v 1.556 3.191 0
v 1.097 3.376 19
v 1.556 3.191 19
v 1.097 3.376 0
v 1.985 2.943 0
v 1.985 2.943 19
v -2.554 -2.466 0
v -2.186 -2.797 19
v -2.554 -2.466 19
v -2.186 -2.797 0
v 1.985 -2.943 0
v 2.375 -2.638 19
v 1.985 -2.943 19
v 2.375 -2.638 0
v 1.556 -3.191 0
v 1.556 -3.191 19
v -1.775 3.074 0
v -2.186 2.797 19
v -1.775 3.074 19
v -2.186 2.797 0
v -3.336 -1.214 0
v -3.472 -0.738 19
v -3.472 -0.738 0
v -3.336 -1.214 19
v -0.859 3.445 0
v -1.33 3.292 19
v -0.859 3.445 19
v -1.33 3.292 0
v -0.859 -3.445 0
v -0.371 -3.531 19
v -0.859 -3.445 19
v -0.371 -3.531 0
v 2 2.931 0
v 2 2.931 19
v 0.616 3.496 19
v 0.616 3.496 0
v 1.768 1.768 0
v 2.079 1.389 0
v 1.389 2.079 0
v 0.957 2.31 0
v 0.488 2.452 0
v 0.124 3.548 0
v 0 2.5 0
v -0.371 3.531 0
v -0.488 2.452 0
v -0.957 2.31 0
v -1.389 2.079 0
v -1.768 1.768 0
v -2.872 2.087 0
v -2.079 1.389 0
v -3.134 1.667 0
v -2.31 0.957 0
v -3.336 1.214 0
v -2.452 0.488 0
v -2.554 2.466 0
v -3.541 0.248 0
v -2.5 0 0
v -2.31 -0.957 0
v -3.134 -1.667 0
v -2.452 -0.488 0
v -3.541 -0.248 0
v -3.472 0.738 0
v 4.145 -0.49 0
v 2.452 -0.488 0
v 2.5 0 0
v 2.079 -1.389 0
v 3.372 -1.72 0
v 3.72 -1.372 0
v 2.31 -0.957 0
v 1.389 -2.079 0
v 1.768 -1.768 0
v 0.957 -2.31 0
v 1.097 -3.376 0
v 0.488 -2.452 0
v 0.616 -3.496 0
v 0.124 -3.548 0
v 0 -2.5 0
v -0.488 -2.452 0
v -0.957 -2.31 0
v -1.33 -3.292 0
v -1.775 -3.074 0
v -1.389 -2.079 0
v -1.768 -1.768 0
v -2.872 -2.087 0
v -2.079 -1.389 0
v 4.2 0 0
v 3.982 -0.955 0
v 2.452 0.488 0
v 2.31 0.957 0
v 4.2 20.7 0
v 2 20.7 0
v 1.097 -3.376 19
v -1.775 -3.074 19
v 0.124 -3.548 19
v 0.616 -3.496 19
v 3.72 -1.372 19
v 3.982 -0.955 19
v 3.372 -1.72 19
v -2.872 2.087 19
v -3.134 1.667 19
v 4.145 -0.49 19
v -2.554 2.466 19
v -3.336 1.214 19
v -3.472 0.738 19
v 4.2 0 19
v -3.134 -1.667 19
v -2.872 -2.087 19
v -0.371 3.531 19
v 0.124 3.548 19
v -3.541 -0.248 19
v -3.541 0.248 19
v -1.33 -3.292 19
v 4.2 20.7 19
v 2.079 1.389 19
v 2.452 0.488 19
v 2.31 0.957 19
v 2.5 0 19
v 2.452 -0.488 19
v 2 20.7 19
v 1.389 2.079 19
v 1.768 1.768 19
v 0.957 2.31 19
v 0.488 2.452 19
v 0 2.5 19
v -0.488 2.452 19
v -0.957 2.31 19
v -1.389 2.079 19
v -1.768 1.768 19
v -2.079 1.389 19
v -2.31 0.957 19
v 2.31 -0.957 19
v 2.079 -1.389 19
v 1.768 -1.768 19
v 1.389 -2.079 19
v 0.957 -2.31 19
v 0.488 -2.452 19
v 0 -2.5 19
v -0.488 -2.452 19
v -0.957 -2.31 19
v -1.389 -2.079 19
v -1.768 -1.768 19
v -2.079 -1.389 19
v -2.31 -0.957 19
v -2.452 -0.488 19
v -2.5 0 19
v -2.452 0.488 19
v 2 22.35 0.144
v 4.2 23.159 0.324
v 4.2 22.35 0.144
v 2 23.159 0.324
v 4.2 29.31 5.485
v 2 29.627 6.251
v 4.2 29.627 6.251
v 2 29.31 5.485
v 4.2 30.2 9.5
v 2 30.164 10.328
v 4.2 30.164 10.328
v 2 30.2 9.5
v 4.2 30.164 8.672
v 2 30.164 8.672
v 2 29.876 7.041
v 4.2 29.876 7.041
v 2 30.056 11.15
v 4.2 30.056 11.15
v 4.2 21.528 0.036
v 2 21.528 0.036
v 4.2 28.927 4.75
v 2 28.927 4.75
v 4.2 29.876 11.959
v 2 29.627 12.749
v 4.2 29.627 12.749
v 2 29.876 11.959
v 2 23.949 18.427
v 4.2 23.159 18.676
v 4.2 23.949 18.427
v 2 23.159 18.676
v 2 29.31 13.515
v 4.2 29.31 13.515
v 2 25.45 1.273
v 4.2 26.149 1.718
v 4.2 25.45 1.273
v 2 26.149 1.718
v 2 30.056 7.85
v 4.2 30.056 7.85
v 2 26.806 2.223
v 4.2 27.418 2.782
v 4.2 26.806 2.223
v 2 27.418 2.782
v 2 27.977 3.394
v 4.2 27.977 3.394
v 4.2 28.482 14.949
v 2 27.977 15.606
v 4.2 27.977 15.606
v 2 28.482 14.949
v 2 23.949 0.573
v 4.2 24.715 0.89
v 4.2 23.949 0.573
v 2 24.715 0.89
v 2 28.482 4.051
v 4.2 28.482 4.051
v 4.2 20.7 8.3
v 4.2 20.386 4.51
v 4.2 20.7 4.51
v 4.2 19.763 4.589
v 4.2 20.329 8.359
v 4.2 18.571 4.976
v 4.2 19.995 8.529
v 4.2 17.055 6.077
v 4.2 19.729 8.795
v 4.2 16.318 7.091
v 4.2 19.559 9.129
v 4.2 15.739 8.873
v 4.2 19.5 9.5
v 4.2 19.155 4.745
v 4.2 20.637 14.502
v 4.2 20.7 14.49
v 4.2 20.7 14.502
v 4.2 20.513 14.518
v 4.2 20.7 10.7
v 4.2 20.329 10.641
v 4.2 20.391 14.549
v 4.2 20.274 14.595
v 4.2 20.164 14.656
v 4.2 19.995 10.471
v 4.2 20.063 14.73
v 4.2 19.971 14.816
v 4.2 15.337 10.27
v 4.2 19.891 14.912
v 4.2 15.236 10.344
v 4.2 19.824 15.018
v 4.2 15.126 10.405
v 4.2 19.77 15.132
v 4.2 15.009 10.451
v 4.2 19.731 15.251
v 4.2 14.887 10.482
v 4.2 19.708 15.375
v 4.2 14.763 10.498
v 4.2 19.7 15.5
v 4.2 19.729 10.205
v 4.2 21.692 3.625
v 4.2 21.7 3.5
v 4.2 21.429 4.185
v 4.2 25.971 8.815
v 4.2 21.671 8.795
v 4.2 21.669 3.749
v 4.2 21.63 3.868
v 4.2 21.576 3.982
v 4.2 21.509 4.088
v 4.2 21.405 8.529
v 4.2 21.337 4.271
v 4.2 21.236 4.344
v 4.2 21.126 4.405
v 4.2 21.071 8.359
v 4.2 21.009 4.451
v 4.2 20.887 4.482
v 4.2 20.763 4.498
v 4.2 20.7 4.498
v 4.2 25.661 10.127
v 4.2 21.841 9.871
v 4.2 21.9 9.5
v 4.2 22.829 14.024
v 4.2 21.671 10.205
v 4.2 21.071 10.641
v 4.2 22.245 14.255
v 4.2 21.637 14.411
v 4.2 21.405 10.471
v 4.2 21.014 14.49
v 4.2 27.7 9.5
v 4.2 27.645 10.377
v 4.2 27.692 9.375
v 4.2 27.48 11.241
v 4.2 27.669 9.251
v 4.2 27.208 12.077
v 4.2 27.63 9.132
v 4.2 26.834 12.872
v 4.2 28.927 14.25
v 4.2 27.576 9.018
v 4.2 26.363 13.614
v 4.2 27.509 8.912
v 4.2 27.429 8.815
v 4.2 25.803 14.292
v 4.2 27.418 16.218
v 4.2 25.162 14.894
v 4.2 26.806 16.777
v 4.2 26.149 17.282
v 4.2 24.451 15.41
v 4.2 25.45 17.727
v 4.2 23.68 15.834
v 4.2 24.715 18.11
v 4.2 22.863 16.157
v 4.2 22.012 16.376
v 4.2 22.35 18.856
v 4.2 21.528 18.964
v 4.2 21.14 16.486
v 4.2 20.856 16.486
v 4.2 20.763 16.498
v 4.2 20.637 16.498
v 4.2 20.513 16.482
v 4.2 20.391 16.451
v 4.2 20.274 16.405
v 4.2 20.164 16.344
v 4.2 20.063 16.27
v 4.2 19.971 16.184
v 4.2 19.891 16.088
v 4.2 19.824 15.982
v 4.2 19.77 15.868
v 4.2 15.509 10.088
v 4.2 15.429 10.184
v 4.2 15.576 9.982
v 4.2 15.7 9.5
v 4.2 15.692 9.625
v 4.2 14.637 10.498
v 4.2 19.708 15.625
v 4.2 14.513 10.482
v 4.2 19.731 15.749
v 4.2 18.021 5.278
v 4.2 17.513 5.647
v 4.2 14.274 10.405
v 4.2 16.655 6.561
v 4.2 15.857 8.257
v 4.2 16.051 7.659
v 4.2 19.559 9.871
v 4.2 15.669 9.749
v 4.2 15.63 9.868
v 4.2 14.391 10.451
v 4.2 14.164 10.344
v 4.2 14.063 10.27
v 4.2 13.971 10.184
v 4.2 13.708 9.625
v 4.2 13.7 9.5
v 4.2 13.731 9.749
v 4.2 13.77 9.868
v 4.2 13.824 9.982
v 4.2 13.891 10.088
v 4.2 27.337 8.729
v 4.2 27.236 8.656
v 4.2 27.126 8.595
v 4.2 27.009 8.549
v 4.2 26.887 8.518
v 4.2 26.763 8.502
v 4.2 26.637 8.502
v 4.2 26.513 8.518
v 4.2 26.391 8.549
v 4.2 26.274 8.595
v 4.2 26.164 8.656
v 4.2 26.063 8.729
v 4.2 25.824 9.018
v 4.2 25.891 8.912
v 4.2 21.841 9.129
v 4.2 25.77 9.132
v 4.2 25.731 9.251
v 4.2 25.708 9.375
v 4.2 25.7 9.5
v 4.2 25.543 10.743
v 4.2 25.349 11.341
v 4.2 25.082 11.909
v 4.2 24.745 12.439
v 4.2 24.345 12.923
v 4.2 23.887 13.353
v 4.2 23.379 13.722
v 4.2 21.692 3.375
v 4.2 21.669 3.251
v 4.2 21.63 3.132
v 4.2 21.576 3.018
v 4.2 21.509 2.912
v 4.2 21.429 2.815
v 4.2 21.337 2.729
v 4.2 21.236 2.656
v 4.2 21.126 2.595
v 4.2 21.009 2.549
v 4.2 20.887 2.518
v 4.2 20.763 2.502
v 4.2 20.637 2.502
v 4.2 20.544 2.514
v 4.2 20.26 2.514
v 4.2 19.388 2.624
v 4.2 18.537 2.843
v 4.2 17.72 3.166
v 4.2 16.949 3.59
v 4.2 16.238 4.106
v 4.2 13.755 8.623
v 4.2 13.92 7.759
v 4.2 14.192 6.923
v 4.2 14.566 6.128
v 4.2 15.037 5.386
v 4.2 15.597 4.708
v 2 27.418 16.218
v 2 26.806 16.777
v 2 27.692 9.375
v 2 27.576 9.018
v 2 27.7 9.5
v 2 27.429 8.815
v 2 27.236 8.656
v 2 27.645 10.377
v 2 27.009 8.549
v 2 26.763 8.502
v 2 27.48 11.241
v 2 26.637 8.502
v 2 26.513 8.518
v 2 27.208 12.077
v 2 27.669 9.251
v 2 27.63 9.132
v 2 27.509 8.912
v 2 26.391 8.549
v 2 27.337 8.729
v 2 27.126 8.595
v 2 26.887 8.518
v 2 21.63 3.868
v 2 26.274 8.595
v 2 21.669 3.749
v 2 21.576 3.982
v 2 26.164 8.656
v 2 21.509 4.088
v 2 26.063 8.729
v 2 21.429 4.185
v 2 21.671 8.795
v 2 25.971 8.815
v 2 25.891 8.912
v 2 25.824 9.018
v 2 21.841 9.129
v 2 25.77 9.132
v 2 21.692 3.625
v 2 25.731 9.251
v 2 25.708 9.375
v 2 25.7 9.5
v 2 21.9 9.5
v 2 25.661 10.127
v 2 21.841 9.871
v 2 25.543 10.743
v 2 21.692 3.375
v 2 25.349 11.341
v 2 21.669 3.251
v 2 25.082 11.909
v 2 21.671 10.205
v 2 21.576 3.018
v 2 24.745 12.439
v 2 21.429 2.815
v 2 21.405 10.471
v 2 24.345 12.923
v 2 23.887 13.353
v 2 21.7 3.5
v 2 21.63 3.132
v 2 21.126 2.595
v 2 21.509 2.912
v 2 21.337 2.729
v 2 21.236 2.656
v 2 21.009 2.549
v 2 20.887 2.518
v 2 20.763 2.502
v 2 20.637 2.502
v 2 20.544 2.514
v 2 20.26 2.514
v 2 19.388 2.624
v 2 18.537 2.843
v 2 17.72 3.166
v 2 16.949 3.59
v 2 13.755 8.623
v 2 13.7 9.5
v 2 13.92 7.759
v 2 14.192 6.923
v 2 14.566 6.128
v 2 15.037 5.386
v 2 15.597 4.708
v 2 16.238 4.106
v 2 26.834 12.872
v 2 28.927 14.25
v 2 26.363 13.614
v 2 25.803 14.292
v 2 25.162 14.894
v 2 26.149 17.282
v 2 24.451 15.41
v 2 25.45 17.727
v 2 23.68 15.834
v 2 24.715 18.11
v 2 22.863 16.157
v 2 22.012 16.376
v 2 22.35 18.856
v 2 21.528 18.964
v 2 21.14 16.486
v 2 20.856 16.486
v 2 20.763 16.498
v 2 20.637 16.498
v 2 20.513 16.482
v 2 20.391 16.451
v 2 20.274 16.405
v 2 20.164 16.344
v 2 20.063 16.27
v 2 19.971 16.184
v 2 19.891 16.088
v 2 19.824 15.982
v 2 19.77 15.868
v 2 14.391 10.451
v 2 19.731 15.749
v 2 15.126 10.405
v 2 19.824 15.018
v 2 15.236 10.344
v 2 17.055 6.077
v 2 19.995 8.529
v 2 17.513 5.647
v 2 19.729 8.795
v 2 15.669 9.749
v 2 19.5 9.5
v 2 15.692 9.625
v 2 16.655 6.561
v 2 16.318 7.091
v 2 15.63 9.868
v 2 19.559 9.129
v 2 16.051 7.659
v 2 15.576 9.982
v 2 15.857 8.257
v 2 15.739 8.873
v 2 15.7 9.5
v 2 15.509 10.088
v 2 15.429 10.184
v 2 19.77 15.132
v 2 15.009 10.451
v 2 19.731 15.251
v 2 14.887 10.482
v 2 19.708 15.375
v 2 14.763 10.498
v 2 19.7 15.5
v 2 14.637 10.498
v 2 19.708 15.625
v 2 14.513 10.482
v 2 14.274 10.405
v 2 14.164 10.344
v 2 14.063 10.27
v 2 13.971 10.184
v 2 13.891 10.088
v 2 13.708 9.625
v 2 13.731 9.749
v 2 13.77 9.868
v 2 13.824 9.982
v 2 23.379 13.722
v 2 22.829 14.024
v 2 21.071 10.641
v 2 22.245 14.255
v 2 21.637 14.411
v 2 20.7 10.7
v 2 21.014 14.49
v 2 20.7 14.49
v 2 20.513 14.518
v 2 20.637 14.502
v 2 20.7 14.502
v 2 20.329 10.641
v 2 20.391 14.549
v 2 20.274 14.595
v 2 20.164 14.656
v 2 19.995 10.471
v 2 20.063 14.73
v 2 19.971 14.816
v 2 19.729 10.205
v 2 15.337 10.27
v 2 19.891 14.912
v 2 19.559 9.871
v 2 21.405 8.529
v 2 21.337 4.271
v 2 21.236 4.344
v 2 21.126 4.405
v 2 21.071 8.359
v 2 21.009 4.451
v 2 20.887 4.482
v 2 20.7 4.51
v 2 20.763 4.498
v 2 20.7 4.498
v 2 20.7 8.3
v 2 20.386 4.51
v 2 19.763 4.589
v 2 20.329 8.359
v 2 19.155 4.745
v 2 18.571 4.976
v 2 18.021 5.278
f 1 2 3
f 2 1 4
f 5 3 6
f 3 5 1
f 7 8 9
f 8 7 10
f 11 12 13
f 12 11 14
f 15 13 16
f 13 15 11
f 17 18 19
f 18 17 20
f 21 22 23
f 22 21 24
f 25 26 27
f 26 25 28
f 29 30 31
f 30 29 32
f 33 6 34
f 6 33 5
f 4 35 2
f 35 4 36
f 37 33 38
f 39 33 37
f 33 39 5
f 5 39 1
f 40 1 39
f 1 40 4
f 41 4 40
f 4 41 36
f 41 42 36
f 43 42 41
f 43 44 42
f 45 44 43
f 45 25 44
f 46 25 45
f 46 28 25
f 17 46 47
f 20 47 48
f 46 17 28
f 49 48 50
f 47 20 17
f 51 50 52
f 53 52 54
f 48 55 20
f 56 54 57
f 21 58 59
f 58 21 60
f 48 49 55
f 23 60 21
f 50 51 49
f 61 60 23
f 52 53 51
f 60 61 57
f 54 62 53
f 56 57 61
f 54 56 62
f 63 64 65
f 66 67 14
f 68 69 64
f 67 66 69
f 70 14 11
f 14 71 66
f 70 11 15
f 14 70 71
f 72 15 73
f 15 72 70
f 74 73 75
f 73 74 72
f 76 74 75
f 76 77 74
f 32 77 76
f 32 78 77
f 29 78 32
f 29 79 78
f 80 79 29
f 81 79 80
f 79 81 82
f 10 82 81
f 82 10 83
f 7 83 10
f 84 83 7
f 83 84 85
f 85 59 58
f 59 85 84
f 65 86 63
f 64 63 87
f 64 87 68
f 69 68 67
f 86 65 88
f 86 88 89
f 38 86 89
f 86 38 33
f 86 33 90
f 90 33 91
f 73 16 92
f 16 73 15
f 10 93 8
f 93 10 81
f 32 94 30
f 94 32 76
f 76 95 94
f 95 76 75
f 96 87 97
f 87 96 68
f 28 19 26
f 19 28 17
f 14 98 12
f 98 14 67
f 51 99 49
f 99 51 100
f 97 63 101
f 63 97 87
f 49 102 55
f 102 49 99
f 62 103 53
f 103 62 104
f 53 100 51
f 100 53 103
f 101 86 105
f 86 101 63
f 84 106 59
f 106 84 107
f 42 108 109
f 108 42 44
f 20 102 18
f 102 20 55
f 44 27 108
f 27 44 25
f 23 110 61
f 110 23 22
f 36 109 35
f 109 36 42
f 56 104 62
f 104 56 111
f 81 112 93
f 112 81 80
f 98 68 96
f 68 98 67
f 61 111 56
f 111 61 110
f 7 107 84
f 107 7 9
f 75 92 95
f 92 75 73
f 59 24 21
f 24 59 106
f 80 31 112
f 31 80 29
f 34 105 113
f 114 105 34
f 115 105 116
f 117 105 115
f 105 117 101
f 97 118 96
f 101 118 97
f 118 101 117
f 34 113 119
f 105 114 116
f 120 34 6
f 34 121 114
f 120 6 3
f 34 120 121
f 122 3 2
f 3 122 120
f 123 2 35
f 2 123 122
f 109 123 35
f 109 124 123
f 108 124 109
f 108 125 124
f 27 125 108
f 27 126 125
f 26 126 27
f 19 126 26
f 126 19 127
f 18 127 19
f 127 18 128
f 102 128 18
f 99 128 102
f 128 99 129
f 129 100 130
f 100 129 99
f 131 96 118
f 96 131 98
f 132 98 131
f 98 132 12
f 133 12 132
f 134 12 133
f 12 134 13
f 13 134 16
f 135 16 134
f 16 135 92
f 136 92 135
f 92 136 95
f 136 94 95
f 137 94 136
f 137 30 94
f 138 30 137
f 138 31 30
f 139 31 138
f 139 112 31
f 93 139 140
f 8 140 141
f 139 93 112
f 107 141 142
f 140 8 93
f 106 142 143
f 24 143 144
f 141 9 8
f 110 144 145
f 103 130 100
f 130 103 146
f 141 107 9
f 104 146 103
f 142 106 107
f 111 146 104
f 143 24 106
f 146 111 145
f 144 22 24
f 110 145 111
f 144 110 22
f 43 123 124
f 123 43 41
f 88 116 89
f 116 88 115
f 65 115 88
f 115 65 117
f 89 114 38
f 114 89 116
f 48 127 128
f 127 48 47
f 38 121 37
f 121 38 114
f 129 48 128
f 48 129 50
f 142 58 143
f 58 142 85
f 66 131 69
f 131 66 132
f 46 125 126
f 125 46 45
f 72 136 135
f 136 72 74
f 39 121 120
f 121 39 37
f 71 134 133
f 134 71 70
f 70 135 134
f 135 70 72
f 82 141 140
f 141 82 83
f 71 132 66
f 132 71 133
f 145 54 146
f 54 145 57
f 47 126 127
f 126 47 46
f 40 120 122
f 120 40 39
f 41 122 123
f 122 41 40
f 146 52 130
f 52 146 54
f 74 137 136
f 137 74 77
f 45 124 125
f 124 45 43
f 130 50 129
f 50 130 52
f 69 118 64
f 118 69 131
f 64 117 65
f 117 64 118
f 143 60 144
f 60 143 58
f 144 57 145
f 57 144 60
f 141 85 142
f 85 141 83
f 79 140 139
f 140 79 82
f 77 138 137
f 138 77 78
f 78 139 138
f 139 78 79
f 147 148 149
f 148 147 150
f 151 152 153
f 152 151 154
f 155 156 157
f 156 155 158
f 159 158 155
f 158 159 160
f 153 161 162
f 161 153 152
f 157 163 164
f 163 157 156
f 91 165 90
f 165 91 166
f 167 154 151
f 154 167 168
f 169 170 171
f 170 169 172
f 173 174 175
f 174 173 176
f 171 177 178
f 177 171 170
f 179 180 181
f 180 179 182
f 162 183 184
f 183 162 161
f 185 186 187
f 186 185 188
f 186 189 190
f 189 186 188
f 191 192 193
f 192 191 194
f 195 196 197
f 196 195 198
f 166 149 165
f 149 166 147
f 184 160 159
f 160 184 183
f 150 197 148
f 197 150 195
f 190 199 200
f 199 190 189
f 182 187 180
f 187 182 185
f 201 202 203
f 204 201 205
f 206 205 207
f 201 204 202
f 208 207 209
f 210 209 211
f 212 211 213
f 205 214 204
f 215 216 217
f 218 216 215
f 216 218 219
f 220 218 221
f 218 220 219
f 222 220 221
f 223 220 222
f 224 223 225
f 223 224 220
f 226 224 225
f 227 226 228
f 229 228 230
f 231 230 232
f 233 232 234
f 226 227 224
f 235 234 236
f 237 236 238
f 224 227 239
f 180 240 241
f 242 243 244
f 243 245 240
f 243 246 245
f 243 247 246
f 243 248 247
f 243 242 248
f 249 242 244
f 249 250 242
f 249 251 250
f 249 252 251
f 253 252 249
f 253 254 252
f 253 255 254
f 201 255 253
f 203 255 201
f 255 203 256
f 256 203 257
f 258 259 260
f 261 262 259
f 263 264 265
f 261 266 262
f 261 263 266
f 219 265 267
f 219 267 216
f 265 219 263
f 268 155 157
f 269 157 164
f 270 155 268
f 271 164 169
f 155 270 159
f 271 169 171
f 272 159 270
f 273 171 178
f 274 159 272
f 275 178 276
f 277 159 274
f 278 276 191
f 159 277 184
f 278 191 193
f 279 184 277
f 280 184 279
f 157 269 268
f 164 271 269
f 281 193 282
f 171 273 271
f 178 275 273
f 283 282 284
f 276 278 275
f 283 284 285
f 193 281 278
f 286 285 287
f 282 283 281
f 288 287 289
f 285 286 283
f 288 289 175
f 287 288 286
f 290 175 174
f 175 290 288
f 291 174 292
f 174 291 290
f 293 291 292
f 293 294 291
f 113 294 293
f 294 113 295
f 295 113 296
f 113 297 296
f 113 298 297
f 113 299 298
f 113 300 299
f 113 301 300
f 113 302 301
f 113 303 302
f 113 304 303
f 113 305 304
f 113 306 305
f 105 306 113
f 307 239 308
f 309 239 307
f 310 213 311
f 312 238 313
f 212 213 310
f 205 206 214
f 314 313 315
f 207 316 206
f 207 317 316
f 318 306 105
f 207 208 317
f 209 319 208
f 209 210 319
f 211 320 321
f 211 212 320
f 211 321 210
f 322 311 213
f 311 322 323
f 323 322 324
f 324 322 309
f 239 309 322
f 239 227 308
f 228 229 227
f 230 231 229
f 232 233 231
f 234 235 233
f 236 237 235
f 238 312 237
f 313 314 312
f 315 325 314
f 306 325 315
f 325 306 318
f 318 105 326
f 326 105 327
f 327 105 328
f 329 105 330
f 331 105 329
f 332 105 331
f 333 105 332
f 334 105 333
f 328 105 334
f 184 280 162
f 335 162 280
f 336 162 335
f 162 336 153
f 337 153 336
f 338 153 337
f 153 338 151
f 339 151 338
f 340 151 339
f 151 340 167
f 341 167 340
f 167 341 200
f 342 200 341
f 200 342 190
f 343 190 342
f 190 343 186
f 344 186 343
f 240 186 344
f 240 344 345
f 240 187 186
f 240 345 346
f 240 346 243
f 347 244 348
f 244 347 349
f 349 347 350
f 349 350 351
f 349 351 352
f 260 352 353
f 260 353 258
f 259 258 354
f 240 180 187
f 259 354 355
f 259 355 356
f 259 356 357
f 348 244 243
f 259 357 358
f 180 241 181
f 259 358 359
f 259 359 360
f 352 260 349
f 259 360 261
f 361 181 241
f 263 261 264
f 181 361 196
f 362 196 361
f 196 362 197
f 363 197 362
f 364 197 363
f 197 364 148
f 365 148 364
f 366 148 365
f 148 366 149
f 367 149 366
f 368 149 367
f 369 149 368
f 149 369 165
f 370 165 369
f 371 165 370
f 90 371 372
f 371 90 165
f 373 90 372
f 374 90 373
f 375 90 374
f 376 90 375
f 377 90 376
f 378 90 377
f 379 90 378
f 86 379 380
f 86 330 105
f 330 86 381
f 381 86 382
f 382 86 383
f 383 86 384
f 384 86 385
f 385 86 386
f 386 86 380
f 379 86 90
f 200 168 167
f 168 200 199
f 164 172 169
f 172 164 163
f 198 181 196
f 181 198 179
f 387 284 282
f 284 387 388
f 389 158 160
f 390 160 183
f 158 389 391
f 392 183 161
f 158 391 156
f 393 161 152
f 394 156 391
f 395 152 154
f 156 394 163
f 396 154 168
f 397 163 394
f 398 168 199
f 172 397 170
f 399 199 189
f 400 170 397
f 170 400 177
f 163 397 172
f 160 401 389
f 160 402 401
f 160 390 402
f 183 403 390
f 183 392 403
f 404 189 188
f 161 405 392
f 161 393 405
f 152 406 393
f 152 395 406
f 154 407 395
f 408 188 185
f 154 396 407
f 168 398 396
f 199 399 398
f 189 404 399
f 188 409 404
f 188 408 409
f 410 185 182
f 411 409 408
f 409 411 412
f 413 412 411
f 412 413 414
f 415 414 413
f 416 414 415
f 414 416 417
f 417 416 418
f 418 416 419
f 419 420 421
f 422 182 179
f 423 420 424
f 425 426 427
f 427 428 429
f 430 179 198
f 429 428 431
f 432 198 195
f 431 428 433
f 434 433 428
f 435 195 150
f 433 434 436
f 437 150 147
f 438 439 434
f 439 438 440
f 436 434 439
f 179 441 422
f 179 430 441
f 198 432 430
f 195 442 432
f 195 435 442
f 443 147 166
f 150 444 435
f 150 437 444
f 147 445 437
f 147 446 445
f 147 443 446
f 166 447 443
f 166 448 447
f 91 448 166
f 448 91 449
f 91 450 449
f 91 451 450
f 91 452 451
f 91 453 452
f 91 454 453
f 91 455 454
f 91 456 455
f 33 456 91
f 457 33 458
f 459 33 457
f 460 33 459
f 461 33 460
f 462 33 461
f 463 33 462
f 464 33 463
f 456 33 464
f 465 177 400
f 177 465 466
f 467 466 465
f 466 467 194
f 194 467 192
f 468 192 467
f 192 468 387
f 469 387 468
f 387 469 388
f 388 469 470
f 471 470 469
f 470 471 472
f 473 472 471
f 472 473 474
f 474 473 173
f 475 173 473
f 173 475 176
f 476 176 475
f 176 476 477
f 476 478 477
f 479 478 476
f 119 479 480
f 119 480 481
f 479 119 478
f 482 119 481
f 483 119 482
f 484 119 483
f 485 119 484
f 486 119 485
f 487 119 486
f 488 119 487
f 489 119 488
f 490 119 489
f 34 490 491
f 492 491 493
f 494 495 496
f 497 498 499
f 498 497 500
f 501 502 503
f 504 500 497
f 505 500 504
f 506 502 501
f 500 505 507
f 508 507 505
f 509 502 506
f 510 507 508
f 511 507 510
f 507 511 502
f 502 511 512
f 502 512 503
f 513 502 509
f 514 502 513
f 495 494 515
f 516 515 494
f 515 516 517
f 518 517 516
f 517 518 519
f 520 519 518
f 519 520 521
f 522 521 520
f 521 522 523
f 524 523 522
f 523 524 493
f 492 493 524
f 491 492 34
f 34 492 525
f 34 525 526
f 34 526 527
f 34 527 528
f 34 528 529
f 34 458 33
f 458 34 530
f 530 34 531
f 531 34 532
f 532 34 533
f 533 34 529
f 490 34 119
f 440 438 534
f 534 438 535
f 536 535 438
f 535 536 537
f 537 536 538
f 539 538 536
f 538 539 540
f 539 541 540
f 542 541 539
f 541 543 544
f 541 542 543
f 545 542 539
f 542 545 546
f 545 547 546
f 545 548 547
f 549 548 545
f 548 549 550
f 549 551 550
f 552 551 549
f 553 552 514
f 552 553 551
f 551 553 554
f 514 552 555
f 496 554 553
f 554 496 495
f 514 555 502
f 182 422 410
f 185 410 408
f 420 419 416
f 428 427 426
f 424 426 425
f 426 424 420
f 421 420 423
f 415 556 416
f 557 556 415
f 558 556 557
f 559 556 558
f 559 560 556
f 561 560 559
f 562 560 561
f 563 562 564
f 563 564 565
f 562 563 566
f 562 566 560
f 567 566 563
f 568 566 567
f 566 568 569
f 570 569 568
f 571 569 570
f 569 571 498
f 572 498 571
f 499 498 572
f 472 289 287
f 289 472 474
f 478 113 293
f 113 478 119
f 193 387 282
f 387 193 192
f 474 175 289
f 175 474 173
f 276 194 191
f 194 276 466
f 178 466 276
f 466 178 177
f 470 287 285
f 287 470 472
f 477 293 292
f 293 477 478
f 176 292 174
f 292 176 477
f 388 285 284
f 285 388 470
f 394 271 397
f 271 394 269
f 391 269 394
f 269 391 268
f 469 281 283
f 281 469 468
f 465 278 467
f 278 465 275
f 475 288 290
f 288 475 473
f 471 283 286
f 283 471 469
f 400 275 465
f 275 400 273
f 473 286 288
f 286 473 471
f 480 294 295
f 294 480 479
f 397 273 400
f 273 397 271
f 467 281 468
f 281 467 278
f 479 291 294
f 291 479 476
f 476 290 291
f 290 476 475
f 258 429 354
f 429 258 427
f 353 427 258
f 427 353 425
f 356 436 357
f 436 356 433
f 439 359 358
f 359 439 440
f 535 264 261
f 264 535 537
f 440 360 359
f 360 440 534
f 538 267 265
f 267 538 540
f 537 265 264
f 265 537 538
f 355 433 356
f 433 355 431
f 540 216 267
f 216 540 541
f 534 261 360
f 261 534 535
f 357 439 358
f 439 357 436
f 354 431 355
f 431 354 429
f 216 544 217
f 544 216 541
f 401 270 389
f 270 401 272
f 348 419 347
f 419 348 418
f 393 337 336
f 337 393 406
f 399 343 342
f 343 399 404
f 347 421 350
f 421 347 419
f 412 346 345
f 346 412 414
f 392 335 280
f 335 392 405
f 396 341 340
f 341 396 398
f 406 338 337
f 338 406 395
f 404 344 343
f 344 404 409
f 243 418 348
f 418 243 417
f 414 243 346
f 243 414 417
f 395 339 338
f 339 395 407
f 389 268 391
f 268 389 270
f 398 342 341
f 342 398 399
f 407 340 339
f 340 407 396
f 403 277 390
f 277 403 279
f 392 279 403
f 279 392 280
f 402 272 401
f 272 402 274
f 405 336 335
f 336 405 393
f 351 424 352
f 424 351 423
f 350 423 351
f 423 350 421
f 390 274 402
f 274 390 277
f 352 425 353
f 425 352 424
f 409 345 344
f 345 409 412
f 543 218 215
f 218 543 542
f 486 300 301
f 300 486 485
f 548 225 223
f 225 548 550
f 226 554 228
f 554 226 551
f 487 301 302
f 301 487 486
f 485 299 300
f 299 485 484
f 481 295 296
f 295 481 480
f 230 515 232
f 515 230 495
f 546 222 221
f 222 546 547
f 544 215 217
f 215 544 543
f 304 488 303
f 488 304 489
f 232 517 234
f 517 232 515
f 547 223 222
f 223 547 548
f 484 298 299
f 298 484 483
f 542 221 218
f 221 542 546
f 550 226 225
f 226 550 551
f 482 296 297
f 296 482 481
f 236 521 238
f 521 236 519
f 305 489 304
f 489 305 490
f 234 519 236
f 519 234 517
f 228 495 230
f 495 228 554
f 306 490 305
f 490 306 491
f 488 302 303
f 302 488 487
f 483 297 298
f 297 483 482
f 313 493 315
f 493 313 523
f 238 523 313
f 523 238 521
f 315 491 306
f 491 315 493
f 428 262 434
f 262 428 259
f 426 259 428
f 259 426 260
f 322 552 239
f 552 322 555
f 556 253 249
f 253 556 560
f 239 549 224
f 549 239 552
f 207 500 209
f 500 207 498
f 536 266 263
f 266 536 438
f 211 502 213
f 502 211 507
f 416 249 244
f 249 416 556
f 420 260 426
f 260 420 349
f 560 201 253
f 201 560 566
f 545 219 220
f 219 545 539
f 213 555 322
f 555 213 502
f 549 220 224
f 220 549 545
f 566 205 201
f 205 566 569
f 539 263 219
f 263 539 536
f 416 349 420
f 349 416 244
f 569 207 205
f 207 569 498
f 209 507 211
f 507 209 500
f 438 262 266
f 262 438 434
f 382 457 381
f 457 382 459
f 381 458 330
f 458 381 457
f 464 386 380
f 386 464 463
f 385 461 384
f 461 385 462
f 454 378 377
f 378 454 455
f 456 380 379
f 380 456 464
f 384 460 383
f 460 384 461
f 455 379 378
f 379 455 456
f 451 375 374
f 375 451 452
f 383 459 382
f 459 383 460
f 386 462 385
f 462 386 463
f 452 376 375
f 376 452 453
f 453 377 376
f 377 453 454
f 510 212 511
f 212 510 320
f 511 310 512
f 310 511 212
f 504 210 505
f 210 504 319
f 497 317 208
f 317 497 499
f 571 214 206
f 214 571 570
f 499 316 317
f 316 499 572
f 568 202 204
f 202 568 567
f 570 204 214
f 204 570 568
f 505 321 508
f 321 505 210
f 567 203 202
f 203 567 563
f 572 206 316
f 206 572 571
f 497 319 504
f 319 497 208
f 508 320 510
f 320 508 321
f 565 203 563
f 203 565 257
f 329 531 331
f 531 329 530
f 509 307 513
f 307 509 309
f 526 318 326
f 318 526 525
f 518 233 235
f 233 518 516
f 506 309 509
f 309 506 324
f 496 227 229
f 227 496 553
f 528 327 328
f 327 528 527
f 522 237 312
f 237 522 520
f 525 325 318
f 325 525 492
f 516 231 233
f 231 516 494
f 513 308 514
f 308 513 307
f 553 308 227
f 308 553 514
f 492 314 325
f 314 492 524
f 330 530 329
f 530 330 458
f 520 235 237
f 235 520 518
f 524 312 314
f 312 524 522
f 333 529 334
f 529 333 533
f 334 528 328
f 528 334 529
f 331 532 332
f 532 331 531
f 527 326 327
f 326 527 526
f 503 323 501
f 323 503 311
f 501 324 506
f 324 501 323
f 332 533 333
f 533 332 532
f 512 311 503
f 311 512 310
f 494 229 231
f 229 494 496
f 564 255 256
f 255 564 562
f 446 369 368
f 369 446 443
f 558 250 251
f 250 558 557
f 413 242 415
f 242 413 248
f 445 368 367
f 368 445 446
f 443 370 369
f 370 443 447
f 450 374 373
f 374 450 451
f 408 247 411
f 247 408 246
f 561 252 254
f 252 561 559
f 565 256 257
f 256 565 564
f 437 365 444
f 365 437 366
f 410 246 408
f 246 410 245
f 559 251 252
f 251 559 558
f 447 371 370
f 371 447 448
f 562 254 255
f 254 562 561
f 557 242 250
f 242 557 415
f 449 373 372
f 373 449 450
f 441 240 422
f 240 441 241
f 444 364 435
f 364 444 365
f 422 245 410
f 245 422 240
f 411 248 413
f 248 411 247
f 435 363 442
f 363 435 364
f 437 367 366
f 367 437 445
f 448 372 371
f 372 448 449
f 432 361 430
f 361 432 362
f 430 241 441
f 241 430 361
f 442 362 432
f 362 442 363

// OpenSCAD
// file: fpv_camera_mount.scad
module fpv_camera_mount_arc(depth, screwwidth, radius = 6)
{
	res = $preview ? 10 : 50;
	intersection() {
		outrad = screwwidth / 2 + radius;
		inrad = radius - screwwidth / 2;
		difference() {
			cylinder(depth, r = outrad, $fn = res);
			cylinder(depth, r = inrad, $fn = res);
		}
		arcextend = screwwidth / 2;
		cube([outrad + arcextend, outrad + arcextend, depth]);
	}
	translate([radius, 0, 0]) cylinder(depth, r = screwwidth / 2, $fn = res);
	translate([0, radius, 0]) cylinder(depth, r = screwwidth / 2, $fn = res);
}

module fpv_camera_mount_hole(depth, screwwidth = 2)
{
	res = $preview ? 10 : 20;
	cylinder(depth, r = screwwidth * 1.2 / 2, $fn = res);
}

module fpv_camera_mount(depth, screwwidth = 2)
{
	fpv_camera_mount_full_6mm(depth, screwwidth);
	rotate([0, 0, 160]) fpv_camera_mount_half_9mm(depth, screwwidth);
}

module fpv_camera_mount_full(depth, screwwidth = 2)
{
	fpv_camera_mount_full_6mm(depth, screwwidth);
	fpv_camera_mount_full_9mm(depth, screwwidth);
}

module fpv_camera_mount_half_6mm(depth, screwwidth = 2)
{
	fpv_camera_mount_hole(depth, screwwidth);
	fpv_camera_mount_arc(depth, screwwidth, 6);
}

module fpv_camera_mount_full_6mm(depth, screwwidth = 2)
{
	rotate([0, 0, 90]) fpv_camera_mount_half_6mm(depth, screwwidth);
	rotate([0, 0, 270]) fpv_camera_mount_half_6mm(depth, screwwidth);
}

module fpv_camera_mount_half_9mm(depth, screwwidth = 2)
{
	fpv_camera_mount_hole(depth, screwwidth);
	fpv_camera_mount_arc(depth, screwwidth, 9);
}

module fpv_camera_mount_full_9mm(depth, screwwidth = 2, angle_offset = -20)
{
	rotate([0, 0, angle_offset]) fpv_camera_mount_half_9mm(depth, screwwidth);
	rotate([0, 0, 180 + angle_offset]) fpv_camera_mount_half_9mm(depth, screwwidth);
}
// main file
use <fpv_camera_mount.scad>

anti_warp = .09;
filament_width = 1.75;

function anti_warp_widen(v) = v + (filament_width * anti_warp) * 2;
function anti_warp_shrink(v) = v - (filament_width * anti_warp) * 2;

height = 19;
offset = 16;

standoff_width = 5;
standoff_wall_thickness = 1.05;

wall_thickness = 2.2;

// END OF CONFIGURATION


$fs = $preview ? 1 : 0.5;
$fa = $preview ? 10 : 5;

module standoff() {
	difference() {
		cylinder(h = height, d = standoff_width + 2 * standoff_wall_thickness);
		cylinder(h = height, d = standoff_width);
	}
}

module main() {
	difference() {
		hull() {
			standoff();
			translate([standoff_width / 2.5, 0]) cylinder(h = height, d = wall_thickness * 2);
		}
		cylinder(h = height, d = standoff_width);
	}
	difference() {
		translate([standoff_width / 2.5, 0]) {
			difference() {
				union() {
					translate([0, offset + wall_thickness + standoff_width / 2, height / 2]) rotate([0, 90]) {
						difference() {
							cylinder(h = wall_thickness, d = height);
						}
					}
					cube([wall_thickness, offset + wall_thickness + standoff_width / 2, height]);
				}
				translate([0, offset + wall_thickness + standoff_width / 2, height / 2]) rotate([0, 90]) {
					fpv_camera_mount_full_6mm(wall_thickness);
				}
			}
		}
		cylinder(h = height, d = standoff_width);
	}
}

main();
